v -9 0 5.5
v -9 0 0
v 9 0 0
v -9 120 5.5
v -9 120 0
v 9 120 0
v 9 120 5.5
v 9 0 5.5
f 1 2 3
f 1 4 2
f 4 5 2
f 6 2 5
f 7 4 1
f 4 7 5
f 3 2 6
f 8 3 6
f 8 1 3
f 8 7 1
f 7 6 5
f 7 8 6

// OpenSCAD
// M8 wrench
// Geometry follows the holder clearance profile. Its dimensions describe the pocket used in the source design. Physical tool dimensions and fit have yet to be measured.
// Units: mm
$fn = 64;
union() {
    translate([0, 0.0, 0]) rotate([0, 0, 0])
        linear_extrude(height=5.5) polygon(points=[[-9, 0], [-9, 120], [9, 120], [9, 0]]);
}
